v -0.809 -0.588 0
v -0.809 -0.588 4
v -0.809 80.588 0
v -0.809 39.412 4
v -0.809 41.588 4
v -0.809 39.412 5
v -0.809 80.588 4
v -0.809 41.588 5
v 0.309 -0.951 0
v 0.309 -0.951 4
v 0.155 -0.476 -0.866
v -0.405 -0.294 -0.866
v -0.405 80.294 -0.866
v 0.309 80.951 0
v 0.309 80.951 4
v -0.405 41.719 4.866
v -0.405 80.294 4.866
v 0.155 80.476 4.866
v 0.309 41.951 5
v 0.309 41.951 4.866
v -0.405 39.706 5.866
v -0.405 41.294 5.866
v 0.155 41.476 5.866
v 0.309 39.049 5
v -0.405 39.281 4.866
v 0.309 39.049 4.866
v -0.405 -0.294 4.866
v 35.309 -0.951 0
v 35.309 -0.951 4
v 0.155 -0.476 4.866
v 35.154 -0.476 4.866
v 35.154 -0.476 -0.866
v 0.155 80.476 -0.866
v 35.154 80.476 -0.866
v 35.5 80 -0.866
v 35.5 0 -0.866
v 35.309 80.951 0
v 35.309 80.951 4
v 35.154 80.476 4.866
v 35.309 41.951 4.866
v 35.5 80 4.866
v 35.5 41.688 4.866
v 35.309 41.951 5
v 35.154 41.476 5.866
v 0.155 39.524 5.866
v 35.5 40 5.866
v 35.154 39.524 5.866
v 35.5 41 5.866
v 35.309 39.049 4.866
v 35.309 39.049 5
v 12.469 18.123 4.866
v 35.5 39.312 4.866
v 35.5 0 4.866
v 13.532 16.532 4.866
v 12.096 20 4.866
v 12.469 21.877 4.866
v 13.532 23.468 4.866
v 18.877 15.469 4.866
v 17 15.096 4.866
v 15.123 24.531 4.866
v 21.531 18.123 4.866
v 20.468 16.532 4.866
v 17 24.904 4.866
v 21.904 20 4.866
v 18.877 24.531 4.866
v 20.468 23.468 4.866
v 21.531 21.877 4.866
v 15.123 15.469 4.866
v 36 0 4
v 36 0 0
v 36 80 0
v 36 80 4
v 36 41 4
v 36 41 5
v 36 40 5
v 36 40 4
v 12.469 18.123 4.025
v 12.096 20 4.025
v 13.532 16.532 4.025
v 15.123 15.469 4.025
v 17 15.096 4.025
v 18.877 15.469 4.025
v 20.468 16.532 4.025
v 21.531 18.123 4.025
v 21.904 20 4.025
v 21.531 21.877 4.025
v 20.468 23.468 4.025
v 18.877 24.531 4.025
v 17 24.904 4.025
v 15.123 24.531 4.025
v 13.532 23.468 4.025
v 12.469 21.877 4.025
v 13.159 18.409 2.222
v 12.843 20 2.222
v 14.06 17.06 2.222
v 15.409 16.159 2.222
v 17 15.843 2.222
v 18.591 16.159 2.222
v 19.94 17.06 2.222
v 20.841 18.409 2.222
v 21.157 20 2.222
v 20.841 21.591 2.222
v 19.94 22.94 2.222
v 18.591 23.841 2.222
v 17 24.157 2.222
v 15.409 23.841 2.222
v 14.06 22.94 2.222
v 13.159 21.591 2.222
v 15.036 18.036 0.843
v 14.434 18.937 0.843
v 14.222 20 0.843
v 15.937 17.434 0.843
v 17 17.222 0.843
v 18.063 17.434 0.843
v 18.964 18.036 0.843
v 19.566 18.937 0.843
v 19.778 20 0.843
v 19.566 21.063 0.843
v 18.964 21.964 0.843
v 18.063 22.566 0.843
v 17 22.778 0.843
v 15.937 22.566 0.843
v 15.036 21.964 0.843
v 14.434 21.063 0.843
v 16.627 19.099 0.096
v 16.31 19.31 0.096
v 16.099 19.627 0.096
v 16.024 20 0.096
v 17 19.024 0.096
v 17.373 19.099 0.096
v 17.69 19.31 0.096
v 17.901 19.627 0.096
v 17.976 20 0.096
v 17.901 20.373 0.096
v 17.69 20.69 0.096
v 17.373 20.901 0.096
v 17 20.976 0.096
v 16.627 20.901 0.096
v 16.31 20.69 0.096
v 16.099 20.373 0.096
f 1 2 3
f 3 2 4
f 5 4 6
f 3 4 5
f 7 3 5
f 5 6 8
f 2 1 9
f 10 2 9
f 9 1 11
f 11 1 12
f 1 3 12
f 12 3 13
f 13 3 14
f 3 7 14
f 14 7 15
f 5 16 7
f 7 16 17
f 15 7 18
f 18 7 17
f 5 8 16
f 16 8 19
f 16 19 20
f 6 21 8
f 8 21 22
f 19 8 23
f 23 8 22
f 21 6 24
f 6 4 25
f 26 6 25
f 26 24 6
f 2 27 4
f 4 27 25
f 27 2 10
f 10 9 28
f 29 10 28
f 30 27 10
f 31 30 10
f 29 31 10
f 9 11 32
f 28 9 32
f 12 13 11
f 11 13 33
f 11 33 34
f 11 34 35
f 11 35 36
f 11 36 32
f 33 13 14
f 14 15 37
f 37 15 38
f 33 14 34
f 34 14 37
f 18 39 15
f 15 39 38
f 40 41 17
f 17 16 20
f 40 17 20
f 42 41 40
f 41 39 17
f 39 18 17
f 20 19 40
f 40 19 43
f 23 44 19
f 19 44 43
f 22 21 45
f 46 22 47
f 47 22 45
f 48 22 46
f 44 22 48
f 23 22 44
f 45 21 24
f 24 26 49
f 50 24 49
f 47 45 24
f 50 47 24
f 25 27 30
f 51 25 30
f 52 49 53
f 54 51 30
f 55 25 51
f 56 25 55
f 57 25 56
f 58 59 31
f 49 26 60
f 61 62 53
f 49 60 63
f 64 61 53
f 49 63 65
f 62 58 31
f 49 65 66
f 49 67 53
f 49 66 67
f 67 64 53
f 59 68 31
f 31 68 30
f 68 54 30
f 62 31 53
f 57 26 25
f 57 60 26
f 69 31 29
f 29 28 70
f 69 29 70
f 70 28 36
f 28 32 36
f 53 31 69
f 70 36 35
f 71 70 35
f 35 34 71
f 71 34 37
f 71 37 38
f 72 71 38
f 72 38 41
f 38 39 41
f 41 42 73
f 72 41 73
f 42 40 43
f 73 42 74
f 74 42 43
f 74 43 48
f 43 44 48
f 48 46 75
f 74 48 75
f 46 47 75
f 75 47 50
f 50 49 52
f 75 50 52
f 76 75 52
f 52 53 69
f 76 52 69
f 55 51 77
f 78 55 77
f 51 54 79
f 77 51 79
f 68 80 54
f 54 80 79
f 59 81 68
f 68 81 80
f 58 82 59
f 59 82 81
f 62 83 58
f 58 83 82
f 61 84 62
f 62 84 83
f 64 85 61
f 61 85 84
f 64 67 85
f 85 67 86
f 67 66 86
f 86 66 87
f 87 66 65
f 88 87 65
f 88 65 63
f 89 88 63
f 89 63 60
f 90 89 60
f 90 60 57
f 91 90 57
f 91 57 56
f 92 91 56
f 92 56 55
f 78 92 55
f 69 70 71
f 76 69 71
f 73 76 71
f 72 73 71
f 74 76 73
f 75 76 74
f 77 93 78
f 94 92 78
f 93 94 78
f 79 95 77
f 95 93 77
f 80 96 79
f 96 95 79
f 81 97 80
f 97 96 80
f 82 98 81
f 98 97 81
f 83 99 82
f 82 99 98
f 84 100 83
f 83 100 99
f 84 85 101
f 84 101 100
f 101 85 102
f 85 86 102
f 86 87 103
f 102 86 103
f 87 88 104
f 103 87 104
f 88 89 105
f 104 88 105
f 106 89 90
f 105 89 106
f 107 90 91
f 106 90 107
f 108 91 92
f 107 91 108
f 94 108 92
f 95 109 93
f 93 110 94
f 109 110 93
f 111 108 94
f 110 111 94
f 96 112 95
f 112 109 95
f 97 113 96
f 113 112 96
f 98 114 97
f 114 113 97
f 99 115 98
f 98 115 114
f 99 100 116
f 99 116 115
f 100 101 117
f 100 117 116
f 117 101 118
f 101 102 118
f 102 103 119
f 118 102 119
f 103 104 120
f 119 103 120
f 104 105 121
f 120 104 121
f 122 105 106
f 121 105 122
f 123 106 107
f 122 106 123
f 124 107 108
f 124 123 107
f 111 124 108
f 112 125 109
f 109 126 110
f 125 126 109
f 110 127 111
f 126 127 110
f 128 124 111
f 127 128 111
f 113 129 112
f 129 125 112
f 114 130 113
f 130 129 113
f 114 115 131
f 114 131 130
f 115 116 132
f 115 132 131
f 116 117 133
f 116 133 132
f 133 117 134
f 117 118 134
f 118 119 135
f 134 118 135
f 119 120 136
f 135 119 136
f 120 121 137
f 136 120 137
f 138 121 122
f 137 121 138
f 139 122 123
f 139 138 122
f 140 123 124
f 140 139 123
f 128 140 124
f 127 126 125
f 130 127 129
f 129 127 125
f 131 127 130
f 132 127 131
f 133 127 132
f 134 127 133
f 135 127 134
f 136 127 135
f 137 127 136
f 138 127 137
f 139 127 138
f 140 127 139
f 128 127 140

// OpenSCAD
// Loguncov Maxim 13.12.13


//$fn=128;


translate([0,40,0])
minkowski()
{cube([35,1,5]);
sphere(1);
}

difference() {

//основа
minkowski()
{cube([35,80,4]);
sphere(1);
}
//отверстия
translate([17,20,5])sphere(5);






}
